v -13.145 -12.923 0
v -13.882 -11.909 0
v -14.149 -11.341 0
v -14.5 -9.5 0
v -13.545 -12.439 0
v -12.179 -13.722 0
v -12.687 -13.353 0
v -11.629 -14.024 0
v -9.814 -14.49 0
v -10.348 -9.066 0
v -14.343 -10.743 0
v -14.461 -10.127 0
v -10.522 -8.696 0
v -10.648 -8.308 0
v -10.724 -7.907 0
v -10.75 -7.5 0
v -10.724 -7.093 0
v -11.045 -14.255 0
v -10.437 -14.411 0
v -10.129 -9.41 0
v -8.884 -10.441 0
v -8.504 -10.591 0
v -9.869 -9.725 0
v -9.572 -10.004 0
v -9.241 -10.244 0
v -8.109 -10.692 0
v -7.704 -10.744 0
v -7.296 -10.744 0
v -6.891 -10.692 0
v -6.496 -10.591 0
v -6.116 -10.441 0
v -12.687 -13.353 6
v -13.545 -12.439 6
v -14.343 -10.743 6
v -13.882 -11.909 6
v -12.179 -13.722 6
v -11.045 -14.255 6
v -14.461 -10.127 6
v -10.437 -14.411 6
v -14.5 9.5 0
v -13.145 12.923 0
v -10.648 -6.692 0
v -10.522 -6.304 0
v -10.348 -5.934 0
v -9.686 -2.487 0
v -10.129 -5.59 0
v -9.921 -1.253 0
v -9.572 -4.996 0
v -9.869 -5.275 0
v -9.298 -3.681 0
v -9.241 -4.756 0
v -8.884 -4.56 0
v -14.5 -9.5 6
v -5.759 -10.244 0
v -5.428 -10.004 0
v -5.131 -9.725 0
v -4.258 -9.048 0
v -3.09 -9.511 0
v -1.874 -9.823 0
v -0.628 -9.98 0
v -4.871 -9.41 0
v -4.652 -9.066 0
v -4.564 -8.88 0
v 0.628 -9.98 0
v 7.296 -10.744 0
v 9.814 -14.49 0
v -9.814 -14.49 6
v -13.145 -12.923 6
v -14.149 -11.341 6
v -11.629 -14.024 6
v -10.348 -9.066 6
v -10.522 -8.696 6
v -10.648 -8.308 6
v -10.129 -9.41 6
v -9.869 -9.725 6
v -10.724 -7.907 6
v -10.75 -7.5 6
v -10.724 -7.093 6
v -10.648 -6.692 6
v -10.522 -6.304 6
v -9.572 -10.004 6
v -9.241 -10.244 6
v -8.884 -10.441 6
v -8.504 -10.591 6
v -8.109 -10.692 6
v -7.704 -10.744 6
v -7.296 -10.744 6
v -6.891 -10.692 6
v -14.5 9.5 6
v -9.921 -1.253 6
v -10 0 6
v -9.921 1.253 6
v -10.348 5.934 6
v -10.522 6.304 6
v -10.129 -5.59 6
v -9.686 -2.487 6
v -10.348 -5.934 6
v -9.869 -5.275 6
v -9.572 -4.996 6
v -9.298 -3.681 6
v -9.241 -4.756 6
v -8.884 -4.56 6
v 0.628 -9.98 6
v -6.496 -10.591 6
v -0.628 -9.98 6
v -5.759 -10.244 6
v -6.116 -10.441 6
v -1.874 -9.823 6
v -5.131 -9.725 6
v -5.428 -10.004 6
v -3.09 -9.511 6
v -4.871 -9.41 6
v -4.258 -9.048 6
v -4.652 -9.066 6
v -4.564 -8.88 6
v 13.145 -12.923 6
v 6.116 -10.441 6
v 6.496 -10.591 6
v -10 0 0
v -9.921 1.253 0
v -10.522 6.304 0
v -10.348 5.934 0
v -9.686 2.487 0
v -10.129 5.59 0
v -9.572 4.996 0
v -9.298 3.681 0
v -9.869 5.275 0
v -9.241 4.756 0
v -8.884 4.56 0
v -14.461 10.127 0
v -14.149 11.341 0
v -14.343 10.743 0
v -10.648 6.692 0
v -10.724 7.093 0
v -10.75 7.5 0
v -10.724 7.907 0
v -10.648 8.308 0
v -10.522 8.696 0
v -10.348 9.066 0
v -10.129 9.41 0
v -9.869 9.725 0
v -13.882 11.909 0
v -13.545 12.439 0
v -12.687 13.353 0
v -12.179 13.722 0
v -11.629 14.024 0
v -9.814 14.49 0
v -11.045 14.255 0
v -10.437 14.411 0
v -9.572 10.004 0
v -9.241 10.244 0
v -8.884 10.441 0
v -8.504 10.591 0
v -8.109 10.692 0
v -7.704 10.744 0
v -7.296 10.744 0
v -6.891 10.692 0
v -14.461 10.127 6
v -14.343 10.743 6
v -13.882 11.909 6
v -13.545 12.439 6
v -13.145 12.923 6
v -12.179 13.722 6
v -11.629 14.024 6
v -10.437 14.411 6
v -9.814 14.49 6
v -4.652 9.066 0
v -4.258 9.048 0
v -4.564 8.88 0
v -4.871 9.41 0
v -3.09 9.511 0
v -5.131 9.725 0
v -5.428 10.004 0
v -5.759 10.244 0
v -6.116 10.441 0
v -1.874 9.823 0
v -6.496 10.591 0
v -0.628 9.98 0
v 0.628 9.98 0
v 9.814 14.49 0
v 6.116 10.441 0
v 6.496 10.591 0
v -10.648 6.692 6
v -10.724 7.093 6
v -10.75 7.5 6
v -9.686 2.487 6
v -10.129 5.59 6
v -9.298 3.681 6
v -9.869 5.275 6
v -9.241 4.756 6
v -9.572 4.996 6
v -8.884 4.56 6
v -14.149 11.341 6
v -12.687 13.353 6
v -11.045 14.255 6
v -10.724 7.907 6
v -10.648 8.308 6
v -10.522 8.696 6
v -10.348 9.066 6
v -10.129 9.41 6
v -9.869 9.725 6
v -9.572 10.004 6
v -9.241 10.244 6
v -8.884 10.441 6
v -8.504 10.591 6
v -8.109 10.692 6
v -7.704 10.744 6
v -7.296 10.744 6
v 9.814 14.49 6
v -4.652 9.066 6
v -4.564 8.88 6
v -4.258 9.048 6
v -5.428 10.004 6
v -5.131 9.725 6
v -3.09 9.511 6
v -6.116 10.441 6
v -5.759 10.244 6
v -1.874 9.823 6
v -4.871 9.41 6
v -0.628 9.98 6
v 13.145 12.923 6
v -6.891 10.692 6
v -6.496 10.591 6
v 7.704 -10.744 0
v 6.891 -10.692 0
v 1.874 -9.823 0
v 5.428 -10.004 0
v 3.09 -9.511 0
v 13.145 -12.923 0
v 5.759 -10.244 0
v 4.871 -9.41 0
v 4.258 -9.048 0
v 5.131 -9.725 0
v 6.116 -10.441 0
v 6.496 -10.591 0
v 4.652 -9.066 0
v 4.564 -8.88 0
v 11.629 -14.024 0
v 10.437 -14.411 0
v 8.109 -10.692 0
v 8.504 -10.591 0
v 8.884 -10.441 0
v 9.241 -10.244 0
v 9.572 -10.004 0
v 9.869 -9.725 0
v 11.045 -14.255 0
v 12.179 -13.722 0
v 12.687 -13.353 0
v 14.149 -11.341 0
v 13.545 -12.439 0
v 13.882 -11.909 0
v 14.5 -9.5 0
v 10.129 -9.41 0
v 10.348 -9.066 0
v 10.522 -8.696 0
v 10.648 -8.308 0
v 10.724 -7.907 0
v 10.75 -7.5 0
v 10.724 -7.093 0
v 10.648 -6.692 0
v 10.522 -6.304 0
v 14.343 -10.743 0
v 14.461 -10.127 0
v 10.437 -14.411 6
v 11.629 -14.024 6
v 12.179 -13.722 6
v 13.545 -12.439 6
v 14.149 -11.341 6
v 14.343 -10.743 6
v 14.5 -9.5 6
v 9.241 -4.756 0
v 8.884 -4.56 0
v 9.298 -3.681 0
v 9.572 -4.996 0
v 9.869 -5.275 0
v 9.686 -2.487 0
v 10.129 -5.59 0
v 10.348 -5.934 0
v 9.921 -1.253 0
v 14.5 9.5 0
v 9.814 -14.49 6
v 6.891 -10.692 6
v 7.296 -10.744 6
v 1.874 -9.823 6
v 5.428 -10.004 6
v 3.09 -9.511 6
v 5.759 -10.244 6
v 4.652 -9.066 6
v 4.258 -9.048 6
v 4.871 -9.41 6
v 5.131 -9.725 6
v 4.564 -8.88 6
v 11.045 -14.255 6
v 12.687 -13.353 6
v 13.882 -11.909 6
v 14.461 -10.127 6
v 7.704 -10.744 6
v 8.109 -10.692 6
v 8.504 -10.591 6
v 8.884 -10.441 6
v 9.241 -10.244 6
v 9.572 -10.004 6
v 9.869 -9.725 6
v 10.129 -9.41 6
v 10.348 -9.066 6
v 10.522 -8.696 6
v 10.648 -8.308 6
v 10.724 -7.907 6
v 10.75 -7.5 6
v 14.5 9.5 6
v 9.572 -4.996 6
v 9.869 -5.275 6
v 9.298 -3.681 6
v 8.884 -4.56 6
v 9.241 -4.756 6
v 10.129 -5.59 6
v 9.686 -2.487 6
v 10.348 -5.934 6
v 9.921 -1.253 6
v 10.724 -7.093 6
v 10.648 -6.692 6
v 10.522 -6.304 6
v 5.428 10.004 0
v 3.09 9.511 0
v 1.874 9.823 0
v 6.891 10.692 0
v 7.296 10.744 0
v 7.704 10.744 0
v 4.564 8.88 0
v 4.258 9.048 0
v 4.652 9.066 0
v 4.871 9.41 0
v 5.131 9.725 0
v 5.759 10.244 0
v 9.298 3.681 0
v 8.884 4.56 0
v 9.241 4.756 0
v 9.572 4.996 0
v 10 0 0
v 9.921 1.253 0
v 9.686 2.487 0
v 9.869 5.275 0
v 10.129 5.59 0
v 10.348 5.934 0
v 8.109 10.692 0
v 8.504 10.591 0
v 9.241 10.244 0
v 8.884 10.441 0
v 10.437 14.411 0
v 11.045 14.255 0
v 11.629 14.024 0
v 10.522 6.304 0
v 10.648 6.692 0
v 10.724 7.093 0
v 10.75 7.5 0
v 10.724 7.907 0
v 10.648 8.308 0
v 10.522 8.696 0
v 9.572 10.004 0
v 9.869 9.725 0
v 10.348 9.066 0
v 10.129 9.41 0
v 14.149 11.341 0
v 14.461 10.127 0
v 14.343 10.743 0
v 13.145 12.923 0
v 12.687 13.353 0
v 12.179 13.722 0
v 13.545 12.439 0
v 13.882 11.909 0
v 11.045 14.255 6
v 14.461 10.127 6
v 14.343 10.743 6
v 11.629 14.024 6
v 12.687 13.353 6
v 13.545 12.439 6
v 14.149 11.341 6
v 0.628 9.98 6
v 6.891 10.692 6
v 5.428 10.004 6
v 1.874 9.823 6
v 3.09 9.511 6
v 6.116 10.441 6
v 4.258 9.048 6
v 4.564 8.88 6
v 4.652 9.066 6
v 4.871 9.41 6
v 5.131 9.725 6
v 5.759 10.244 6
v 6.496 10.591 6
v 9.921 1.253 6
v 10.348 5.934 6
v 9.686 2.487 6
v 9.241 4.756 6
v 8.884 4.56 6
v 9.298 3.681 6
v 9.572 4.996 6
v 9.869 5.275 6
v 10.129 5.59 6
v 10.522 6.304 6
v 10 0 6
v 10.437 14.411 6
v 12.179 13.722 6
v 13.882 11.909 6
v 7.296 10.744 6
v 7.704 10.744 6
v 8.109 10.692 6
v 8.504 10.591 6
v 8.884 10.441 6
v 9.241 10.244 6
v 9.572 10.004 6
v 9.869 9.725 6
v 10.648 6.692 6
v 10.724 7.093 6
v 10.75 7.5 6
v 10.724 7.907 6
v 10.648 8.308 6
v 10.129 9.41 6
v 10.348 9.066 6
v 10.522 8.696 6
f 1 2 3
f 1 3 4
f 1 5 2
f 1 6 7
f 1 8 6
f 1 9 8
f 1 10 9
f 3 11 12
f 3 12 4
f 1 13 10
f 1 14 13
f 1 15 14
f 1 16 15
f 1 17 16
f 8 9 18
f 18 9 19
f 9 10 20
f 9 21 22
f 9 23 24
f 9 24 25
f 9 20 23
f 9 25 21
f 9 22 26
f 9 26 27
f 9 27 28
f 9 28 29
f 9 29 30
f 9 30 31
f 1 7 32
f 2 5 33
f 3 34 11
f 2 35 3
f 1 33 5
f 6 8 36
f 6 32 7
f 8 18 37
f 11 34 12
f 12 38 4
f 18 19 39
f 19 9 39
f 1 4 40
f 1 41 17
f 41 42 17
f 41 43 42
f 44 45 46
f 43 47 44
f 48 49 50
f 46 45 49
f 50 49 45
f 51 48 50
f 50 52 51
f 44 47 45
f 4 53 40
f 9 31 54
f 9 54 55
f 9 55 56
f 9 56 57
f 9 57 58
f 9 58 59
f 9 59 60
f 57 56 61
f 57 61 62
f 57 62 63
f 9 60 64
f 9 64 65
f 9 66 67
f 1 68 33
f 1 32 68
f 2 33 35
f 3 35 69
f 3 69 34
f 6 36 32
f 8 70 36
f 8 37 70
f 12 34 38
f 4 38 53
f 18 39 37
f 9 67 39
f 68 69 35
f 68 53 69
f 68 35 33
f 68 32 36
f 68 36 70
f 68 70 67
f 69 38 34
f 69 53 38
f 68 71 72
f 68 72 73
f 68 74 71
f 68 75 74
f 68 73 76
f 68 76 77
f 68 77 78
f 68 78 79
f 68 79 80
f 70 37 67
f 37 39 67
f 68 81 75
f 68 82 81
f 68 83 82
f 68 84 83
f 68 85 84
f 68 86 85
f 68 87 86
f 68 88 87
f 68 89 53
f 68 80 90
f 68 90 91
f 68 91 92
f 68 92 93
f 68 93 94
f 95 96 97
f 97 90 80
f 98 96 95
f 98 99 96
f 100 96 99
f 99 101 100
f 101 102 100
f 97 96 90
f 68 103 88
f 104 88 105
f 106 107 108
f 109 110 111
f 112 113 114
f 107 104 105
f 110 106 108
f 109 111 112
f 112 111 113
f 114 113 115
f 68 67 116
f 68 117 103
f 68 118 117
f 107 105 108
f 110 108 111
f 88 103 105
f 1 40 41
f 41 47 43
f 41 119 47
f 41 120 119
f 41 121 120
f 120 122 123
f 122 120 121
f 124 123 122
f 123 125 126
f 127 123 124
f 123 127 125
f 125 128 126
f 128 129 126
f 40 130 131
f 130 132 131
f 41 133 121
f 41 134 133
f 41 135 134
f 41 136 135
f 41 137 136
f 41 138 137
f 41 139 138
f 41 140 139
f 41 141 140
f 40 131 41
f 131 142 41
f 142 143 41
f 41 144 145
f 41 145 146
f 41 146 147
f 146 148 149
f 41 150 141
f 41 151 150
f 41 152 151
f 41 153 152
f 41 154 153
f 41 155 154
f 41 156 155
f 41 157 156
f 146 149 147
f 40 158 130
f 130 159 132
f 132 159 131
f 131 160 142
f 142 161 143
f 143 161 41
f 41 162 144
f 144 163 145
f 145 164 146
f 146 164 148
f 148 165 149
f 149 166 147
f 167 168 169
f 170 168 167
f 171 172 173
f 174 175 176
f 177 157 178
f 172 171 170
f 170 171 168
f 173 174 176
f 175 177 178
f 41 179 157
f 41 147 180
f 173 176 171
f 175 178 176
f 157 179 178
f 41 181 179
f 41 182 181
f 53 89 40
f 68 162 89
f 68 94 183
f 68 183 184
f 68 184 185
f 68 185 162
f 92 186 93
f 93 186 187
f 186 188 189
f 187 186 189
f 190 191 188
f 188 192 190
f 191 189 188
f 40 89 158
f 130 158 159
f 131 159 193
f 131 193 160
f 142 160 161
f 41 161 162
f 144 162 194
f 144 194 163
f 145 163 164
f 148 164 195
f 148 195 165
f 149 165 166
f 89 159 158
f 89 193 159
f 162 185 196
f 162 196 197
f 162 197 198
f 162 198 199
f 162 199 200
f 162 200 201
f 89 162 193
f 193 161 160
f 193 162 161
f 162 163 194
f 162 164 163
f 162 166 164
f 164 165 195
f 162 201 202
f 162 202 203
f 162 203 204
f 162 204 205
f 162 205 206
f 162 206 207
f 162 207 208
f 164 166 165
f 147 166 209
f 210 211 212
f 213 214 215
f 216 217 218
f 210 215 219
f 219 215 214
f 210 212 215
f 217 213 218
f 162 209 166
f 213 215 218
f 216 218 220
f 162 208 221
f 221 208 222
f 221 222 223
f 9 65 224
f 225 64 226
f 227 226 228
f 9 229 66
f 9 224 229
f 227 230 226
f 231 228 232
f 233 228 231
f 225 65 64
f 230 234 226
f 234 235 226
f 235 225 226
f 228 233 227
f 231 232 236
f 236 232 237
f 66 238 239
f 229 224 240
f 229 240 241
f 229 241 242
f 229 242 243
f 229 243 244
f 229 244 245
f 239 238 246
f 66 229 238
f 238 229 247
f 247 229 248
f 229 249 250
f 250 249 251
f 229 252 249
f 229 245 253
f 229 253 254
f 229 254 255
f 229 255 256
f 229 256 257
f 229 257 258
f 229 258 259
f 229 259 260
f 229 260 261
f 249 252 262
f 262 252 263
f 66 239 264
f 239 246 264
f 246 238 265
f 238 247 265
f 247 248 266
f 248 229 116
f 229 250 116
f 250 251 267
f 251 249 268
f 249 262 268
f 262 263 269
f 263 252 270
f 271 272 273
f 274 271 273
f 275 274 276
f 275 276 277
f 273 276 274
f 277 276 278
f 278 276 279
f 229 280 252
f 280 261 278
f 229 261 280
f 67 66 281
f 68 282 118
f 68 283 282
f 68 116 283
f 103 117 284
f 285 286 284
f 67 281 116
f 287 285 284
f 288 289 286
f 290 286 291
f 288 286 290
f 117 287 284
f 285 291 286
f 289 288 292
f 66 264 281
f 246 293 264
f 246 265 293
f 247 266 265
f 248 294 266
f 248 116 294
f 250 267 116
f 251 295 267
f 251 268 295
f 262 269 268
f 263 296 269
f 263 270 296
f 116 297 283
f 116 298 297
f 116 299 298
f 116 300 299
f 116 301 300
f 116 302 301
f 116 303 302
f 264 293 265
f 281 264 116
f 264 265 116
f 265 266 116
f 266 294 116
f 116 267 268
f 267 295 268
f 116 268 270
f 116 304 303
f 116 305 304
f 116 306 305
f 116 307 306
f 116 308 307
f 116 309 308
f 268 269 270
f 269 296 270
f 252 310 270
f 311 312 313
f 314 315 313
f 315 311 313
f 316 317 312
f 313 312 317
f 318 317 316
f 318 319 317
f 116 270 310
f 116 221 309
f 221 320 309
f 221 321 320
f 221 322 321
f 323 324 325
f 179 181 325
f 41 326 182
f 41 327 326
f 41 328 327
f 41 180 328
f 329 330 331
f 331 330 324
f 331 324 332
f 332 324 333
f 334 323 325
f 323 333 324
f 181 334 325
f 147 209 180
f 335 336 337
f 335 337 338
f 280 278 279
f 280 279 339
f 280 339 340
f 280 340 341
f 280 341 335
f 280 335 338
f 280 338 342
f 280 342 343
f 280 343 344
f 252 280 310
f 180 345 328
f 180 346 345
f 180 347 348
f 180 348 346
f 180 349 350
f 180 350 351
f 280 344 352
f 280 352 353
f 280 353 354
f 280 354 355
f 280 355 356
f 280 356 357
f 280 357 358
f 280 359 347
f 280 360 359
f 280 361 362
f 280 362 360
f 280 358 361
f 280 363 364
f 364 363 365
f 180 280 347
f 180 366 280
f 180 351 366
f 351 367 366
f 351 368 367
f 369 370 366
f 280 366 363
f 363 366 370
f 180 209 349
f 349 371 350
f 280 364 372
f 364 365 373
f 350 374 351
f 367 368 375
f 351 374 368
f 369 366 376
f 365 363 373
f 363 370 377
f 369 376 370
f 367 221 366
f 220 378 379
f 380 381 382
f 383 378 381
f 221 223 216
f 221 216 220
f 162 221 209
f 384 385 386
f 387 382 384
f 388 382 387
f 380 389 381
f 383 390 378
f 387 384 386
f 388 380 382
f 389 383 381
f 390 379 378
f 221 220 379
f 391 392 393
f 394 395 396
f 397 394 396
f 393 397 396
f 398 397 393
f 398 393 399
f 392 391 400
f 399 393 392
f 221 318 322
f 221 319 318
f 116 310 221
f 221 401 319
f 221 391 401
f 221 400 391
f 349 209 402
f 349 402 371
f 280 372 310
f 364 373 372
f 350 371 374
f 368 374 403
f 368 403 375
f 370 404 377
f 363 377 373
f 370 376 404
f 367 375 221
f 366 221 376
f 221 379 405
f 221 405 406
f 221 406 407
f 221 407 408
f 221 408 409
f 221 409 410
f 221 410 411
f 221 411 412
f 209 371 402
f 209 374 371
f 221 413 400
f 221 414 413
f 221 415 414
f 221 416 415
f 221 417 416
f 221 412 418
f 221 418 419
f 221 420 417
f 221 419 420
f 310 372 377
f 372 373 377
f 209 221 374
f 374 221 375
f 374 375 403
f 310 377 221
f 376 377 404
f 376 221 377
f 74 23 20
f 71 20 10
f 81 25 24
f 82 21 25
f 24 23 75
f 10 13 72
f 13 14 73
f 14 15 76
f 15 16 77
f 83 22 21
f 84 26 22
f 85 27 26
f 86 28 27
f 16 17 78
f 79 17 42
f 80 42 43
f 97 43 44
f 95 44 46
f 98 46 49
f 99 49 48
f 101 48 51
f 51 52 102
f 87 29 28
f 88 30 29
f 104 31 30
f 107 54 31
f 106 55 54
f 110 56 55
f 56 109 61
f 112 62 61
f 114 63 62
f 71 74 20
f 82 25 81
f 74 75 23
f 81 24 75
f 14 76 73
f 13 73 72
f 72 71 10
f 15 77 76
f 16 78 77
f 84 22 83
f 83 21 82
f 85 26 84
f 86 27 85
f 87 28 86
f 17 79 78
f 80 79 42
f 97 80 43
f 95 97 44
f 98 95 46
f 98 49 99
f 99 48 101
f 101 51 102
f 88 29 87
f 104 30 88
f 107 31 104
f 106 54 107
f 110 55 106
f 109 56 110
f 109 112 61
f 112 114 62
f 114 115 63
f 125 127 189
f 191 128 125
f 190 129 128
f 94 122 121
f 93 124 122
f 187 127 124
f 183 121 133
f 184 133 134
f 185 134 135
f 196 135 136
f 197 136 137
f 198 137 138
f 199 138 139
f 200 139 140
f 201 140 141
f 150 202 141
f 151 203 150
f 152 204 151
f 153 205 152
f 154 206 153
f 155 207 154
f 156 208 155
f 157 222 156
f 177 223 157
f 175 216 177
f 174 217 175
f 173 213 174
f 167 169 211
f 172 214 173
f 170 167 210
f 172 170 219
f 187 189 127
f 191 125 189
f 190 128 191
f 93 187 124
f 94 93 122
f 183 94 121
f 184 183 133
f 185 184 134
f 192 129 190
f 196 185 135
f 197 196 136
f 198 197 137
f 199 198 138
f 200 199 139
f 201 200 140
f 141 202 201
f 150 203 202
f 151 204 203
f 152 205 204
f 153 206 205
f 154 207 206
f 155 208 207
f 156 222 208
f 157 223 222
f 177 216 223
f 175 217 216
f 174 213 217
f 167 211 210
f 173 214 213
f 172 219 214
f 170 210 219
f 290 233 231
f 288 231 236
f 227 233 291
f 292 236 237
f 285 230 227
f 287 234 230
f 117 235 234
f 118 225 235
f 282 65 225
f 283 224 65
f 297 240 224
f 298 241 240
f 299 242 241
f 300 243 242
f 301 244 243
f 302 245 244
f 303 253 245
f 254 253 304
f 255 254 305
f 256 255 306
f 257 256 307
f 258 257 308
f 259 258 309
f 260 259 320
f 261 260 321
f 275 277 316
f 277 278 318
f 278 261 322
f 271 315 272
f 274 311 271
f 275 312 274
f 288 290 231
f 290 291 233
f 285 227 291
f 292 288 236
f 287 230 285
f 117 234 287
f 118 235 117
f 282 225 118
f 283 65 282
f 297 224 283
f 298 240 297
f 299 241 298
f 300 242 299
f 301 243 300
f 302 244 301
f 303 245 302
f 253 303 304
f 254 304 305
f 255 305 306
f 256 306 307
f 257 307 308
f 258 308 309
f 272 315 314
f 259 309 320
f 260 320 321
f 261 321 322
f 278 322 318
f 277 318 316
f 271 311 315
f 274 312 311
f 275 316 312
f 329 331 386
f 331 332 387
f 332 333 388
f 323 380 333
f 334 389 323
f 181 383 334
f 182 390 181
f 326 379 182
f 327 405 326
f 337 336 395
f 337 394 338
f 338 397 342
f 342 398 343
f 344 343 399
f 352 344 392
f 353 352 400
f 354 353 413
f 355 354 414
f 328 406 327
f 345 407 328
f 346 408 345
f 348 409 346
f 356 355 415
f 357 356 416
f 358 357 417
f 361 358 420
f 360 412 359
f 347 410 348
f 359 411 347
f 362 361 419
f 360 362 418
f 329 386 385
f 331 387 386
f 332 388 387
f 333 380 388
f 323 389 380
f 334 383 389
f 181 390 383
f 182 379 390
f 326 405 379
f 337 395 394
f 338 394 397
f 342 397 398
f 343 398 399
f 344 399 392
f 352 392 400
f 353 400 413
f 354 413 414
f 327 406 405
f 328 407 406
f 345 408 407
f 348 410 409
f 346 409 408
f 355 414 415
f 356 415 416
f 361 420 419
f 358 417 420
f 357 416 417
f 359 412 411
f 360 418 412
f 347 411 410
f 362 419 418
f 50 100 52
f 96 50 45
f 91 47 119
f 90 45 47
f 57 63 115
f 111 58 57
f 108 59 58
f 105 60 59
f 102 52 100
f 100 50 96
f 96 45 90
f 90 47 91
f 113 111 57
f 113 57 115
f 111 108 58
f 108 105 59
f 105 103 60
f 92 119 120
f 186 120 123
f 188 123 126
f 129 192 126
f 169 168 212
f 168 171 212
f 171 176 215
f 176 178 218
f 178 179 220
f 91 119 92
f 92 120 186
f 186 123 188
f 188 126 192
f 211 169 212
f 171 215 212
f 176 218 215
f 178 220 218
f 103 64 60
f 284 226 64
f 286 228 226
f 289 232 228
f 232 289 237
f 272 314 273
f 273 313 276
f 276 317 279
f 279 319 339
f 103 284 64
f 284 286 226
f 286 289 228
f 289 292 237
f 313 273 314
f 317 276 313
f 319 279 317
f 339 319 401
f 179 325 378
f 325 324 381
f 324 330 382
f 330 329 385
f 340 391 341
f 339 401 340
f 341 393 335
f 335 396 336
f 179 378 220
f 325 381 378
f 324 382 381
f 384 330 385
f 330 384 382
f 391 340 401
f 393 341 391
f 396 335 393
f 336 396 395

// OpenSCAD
$fn = 50;

difference() {
	union() {
		hull() {
			translate(v = [-9.5, 9.5, 0]) {
				cylinder(h = 6, r = 5);
			}
			translate(v = [9.5, 9.5, 0]) {
				cylinder(h = 6, r = 5);
			}
			translate(v = [-9.5, -9.5, 0]) {
				cylinder(h = 6, r = 5);
			}
			translate(v = [9.5, -9.5, 0]) {
				cylinder(h = 6, r = 5);
			}
		}
	}
	union() {
		translate(v = [-7.5, -7.5, -100.0]) {
			cylinder(h = 200, r = 3.25);
		}
		translate(v = [-7.5, 7.5, -100.0]) {
			cylinder(h = 200, r = 3.25);
		}
		translate(v = [7.5, -7.5, -100.0]) {
			cylinder(h = 200, r = 3.25);
		}
		translate(v = [7.5, 7.5, -100.0]) {
			cylinder(h = 200, r = 3.25);
		}
		translate(v = [-7.5, -7.5, -100.0]) {
			cylinder(h = 200, r = 1.8);
		}
		translate(v = [-7.5, 7.5, -100.0]) {
			cylinder(h = 200, r = 1.8);
		}
		translate(v = [7.5, -7.5, -100.0]) {
			cylinder(h = 200, r = 1.8);
		}
		translate(v = [7.5, 7.5, -100.0]) {
			cylinder(h = 200, r = 1.8);
		}
		cylinder(h = 6, r = 10.0);
	}
}
